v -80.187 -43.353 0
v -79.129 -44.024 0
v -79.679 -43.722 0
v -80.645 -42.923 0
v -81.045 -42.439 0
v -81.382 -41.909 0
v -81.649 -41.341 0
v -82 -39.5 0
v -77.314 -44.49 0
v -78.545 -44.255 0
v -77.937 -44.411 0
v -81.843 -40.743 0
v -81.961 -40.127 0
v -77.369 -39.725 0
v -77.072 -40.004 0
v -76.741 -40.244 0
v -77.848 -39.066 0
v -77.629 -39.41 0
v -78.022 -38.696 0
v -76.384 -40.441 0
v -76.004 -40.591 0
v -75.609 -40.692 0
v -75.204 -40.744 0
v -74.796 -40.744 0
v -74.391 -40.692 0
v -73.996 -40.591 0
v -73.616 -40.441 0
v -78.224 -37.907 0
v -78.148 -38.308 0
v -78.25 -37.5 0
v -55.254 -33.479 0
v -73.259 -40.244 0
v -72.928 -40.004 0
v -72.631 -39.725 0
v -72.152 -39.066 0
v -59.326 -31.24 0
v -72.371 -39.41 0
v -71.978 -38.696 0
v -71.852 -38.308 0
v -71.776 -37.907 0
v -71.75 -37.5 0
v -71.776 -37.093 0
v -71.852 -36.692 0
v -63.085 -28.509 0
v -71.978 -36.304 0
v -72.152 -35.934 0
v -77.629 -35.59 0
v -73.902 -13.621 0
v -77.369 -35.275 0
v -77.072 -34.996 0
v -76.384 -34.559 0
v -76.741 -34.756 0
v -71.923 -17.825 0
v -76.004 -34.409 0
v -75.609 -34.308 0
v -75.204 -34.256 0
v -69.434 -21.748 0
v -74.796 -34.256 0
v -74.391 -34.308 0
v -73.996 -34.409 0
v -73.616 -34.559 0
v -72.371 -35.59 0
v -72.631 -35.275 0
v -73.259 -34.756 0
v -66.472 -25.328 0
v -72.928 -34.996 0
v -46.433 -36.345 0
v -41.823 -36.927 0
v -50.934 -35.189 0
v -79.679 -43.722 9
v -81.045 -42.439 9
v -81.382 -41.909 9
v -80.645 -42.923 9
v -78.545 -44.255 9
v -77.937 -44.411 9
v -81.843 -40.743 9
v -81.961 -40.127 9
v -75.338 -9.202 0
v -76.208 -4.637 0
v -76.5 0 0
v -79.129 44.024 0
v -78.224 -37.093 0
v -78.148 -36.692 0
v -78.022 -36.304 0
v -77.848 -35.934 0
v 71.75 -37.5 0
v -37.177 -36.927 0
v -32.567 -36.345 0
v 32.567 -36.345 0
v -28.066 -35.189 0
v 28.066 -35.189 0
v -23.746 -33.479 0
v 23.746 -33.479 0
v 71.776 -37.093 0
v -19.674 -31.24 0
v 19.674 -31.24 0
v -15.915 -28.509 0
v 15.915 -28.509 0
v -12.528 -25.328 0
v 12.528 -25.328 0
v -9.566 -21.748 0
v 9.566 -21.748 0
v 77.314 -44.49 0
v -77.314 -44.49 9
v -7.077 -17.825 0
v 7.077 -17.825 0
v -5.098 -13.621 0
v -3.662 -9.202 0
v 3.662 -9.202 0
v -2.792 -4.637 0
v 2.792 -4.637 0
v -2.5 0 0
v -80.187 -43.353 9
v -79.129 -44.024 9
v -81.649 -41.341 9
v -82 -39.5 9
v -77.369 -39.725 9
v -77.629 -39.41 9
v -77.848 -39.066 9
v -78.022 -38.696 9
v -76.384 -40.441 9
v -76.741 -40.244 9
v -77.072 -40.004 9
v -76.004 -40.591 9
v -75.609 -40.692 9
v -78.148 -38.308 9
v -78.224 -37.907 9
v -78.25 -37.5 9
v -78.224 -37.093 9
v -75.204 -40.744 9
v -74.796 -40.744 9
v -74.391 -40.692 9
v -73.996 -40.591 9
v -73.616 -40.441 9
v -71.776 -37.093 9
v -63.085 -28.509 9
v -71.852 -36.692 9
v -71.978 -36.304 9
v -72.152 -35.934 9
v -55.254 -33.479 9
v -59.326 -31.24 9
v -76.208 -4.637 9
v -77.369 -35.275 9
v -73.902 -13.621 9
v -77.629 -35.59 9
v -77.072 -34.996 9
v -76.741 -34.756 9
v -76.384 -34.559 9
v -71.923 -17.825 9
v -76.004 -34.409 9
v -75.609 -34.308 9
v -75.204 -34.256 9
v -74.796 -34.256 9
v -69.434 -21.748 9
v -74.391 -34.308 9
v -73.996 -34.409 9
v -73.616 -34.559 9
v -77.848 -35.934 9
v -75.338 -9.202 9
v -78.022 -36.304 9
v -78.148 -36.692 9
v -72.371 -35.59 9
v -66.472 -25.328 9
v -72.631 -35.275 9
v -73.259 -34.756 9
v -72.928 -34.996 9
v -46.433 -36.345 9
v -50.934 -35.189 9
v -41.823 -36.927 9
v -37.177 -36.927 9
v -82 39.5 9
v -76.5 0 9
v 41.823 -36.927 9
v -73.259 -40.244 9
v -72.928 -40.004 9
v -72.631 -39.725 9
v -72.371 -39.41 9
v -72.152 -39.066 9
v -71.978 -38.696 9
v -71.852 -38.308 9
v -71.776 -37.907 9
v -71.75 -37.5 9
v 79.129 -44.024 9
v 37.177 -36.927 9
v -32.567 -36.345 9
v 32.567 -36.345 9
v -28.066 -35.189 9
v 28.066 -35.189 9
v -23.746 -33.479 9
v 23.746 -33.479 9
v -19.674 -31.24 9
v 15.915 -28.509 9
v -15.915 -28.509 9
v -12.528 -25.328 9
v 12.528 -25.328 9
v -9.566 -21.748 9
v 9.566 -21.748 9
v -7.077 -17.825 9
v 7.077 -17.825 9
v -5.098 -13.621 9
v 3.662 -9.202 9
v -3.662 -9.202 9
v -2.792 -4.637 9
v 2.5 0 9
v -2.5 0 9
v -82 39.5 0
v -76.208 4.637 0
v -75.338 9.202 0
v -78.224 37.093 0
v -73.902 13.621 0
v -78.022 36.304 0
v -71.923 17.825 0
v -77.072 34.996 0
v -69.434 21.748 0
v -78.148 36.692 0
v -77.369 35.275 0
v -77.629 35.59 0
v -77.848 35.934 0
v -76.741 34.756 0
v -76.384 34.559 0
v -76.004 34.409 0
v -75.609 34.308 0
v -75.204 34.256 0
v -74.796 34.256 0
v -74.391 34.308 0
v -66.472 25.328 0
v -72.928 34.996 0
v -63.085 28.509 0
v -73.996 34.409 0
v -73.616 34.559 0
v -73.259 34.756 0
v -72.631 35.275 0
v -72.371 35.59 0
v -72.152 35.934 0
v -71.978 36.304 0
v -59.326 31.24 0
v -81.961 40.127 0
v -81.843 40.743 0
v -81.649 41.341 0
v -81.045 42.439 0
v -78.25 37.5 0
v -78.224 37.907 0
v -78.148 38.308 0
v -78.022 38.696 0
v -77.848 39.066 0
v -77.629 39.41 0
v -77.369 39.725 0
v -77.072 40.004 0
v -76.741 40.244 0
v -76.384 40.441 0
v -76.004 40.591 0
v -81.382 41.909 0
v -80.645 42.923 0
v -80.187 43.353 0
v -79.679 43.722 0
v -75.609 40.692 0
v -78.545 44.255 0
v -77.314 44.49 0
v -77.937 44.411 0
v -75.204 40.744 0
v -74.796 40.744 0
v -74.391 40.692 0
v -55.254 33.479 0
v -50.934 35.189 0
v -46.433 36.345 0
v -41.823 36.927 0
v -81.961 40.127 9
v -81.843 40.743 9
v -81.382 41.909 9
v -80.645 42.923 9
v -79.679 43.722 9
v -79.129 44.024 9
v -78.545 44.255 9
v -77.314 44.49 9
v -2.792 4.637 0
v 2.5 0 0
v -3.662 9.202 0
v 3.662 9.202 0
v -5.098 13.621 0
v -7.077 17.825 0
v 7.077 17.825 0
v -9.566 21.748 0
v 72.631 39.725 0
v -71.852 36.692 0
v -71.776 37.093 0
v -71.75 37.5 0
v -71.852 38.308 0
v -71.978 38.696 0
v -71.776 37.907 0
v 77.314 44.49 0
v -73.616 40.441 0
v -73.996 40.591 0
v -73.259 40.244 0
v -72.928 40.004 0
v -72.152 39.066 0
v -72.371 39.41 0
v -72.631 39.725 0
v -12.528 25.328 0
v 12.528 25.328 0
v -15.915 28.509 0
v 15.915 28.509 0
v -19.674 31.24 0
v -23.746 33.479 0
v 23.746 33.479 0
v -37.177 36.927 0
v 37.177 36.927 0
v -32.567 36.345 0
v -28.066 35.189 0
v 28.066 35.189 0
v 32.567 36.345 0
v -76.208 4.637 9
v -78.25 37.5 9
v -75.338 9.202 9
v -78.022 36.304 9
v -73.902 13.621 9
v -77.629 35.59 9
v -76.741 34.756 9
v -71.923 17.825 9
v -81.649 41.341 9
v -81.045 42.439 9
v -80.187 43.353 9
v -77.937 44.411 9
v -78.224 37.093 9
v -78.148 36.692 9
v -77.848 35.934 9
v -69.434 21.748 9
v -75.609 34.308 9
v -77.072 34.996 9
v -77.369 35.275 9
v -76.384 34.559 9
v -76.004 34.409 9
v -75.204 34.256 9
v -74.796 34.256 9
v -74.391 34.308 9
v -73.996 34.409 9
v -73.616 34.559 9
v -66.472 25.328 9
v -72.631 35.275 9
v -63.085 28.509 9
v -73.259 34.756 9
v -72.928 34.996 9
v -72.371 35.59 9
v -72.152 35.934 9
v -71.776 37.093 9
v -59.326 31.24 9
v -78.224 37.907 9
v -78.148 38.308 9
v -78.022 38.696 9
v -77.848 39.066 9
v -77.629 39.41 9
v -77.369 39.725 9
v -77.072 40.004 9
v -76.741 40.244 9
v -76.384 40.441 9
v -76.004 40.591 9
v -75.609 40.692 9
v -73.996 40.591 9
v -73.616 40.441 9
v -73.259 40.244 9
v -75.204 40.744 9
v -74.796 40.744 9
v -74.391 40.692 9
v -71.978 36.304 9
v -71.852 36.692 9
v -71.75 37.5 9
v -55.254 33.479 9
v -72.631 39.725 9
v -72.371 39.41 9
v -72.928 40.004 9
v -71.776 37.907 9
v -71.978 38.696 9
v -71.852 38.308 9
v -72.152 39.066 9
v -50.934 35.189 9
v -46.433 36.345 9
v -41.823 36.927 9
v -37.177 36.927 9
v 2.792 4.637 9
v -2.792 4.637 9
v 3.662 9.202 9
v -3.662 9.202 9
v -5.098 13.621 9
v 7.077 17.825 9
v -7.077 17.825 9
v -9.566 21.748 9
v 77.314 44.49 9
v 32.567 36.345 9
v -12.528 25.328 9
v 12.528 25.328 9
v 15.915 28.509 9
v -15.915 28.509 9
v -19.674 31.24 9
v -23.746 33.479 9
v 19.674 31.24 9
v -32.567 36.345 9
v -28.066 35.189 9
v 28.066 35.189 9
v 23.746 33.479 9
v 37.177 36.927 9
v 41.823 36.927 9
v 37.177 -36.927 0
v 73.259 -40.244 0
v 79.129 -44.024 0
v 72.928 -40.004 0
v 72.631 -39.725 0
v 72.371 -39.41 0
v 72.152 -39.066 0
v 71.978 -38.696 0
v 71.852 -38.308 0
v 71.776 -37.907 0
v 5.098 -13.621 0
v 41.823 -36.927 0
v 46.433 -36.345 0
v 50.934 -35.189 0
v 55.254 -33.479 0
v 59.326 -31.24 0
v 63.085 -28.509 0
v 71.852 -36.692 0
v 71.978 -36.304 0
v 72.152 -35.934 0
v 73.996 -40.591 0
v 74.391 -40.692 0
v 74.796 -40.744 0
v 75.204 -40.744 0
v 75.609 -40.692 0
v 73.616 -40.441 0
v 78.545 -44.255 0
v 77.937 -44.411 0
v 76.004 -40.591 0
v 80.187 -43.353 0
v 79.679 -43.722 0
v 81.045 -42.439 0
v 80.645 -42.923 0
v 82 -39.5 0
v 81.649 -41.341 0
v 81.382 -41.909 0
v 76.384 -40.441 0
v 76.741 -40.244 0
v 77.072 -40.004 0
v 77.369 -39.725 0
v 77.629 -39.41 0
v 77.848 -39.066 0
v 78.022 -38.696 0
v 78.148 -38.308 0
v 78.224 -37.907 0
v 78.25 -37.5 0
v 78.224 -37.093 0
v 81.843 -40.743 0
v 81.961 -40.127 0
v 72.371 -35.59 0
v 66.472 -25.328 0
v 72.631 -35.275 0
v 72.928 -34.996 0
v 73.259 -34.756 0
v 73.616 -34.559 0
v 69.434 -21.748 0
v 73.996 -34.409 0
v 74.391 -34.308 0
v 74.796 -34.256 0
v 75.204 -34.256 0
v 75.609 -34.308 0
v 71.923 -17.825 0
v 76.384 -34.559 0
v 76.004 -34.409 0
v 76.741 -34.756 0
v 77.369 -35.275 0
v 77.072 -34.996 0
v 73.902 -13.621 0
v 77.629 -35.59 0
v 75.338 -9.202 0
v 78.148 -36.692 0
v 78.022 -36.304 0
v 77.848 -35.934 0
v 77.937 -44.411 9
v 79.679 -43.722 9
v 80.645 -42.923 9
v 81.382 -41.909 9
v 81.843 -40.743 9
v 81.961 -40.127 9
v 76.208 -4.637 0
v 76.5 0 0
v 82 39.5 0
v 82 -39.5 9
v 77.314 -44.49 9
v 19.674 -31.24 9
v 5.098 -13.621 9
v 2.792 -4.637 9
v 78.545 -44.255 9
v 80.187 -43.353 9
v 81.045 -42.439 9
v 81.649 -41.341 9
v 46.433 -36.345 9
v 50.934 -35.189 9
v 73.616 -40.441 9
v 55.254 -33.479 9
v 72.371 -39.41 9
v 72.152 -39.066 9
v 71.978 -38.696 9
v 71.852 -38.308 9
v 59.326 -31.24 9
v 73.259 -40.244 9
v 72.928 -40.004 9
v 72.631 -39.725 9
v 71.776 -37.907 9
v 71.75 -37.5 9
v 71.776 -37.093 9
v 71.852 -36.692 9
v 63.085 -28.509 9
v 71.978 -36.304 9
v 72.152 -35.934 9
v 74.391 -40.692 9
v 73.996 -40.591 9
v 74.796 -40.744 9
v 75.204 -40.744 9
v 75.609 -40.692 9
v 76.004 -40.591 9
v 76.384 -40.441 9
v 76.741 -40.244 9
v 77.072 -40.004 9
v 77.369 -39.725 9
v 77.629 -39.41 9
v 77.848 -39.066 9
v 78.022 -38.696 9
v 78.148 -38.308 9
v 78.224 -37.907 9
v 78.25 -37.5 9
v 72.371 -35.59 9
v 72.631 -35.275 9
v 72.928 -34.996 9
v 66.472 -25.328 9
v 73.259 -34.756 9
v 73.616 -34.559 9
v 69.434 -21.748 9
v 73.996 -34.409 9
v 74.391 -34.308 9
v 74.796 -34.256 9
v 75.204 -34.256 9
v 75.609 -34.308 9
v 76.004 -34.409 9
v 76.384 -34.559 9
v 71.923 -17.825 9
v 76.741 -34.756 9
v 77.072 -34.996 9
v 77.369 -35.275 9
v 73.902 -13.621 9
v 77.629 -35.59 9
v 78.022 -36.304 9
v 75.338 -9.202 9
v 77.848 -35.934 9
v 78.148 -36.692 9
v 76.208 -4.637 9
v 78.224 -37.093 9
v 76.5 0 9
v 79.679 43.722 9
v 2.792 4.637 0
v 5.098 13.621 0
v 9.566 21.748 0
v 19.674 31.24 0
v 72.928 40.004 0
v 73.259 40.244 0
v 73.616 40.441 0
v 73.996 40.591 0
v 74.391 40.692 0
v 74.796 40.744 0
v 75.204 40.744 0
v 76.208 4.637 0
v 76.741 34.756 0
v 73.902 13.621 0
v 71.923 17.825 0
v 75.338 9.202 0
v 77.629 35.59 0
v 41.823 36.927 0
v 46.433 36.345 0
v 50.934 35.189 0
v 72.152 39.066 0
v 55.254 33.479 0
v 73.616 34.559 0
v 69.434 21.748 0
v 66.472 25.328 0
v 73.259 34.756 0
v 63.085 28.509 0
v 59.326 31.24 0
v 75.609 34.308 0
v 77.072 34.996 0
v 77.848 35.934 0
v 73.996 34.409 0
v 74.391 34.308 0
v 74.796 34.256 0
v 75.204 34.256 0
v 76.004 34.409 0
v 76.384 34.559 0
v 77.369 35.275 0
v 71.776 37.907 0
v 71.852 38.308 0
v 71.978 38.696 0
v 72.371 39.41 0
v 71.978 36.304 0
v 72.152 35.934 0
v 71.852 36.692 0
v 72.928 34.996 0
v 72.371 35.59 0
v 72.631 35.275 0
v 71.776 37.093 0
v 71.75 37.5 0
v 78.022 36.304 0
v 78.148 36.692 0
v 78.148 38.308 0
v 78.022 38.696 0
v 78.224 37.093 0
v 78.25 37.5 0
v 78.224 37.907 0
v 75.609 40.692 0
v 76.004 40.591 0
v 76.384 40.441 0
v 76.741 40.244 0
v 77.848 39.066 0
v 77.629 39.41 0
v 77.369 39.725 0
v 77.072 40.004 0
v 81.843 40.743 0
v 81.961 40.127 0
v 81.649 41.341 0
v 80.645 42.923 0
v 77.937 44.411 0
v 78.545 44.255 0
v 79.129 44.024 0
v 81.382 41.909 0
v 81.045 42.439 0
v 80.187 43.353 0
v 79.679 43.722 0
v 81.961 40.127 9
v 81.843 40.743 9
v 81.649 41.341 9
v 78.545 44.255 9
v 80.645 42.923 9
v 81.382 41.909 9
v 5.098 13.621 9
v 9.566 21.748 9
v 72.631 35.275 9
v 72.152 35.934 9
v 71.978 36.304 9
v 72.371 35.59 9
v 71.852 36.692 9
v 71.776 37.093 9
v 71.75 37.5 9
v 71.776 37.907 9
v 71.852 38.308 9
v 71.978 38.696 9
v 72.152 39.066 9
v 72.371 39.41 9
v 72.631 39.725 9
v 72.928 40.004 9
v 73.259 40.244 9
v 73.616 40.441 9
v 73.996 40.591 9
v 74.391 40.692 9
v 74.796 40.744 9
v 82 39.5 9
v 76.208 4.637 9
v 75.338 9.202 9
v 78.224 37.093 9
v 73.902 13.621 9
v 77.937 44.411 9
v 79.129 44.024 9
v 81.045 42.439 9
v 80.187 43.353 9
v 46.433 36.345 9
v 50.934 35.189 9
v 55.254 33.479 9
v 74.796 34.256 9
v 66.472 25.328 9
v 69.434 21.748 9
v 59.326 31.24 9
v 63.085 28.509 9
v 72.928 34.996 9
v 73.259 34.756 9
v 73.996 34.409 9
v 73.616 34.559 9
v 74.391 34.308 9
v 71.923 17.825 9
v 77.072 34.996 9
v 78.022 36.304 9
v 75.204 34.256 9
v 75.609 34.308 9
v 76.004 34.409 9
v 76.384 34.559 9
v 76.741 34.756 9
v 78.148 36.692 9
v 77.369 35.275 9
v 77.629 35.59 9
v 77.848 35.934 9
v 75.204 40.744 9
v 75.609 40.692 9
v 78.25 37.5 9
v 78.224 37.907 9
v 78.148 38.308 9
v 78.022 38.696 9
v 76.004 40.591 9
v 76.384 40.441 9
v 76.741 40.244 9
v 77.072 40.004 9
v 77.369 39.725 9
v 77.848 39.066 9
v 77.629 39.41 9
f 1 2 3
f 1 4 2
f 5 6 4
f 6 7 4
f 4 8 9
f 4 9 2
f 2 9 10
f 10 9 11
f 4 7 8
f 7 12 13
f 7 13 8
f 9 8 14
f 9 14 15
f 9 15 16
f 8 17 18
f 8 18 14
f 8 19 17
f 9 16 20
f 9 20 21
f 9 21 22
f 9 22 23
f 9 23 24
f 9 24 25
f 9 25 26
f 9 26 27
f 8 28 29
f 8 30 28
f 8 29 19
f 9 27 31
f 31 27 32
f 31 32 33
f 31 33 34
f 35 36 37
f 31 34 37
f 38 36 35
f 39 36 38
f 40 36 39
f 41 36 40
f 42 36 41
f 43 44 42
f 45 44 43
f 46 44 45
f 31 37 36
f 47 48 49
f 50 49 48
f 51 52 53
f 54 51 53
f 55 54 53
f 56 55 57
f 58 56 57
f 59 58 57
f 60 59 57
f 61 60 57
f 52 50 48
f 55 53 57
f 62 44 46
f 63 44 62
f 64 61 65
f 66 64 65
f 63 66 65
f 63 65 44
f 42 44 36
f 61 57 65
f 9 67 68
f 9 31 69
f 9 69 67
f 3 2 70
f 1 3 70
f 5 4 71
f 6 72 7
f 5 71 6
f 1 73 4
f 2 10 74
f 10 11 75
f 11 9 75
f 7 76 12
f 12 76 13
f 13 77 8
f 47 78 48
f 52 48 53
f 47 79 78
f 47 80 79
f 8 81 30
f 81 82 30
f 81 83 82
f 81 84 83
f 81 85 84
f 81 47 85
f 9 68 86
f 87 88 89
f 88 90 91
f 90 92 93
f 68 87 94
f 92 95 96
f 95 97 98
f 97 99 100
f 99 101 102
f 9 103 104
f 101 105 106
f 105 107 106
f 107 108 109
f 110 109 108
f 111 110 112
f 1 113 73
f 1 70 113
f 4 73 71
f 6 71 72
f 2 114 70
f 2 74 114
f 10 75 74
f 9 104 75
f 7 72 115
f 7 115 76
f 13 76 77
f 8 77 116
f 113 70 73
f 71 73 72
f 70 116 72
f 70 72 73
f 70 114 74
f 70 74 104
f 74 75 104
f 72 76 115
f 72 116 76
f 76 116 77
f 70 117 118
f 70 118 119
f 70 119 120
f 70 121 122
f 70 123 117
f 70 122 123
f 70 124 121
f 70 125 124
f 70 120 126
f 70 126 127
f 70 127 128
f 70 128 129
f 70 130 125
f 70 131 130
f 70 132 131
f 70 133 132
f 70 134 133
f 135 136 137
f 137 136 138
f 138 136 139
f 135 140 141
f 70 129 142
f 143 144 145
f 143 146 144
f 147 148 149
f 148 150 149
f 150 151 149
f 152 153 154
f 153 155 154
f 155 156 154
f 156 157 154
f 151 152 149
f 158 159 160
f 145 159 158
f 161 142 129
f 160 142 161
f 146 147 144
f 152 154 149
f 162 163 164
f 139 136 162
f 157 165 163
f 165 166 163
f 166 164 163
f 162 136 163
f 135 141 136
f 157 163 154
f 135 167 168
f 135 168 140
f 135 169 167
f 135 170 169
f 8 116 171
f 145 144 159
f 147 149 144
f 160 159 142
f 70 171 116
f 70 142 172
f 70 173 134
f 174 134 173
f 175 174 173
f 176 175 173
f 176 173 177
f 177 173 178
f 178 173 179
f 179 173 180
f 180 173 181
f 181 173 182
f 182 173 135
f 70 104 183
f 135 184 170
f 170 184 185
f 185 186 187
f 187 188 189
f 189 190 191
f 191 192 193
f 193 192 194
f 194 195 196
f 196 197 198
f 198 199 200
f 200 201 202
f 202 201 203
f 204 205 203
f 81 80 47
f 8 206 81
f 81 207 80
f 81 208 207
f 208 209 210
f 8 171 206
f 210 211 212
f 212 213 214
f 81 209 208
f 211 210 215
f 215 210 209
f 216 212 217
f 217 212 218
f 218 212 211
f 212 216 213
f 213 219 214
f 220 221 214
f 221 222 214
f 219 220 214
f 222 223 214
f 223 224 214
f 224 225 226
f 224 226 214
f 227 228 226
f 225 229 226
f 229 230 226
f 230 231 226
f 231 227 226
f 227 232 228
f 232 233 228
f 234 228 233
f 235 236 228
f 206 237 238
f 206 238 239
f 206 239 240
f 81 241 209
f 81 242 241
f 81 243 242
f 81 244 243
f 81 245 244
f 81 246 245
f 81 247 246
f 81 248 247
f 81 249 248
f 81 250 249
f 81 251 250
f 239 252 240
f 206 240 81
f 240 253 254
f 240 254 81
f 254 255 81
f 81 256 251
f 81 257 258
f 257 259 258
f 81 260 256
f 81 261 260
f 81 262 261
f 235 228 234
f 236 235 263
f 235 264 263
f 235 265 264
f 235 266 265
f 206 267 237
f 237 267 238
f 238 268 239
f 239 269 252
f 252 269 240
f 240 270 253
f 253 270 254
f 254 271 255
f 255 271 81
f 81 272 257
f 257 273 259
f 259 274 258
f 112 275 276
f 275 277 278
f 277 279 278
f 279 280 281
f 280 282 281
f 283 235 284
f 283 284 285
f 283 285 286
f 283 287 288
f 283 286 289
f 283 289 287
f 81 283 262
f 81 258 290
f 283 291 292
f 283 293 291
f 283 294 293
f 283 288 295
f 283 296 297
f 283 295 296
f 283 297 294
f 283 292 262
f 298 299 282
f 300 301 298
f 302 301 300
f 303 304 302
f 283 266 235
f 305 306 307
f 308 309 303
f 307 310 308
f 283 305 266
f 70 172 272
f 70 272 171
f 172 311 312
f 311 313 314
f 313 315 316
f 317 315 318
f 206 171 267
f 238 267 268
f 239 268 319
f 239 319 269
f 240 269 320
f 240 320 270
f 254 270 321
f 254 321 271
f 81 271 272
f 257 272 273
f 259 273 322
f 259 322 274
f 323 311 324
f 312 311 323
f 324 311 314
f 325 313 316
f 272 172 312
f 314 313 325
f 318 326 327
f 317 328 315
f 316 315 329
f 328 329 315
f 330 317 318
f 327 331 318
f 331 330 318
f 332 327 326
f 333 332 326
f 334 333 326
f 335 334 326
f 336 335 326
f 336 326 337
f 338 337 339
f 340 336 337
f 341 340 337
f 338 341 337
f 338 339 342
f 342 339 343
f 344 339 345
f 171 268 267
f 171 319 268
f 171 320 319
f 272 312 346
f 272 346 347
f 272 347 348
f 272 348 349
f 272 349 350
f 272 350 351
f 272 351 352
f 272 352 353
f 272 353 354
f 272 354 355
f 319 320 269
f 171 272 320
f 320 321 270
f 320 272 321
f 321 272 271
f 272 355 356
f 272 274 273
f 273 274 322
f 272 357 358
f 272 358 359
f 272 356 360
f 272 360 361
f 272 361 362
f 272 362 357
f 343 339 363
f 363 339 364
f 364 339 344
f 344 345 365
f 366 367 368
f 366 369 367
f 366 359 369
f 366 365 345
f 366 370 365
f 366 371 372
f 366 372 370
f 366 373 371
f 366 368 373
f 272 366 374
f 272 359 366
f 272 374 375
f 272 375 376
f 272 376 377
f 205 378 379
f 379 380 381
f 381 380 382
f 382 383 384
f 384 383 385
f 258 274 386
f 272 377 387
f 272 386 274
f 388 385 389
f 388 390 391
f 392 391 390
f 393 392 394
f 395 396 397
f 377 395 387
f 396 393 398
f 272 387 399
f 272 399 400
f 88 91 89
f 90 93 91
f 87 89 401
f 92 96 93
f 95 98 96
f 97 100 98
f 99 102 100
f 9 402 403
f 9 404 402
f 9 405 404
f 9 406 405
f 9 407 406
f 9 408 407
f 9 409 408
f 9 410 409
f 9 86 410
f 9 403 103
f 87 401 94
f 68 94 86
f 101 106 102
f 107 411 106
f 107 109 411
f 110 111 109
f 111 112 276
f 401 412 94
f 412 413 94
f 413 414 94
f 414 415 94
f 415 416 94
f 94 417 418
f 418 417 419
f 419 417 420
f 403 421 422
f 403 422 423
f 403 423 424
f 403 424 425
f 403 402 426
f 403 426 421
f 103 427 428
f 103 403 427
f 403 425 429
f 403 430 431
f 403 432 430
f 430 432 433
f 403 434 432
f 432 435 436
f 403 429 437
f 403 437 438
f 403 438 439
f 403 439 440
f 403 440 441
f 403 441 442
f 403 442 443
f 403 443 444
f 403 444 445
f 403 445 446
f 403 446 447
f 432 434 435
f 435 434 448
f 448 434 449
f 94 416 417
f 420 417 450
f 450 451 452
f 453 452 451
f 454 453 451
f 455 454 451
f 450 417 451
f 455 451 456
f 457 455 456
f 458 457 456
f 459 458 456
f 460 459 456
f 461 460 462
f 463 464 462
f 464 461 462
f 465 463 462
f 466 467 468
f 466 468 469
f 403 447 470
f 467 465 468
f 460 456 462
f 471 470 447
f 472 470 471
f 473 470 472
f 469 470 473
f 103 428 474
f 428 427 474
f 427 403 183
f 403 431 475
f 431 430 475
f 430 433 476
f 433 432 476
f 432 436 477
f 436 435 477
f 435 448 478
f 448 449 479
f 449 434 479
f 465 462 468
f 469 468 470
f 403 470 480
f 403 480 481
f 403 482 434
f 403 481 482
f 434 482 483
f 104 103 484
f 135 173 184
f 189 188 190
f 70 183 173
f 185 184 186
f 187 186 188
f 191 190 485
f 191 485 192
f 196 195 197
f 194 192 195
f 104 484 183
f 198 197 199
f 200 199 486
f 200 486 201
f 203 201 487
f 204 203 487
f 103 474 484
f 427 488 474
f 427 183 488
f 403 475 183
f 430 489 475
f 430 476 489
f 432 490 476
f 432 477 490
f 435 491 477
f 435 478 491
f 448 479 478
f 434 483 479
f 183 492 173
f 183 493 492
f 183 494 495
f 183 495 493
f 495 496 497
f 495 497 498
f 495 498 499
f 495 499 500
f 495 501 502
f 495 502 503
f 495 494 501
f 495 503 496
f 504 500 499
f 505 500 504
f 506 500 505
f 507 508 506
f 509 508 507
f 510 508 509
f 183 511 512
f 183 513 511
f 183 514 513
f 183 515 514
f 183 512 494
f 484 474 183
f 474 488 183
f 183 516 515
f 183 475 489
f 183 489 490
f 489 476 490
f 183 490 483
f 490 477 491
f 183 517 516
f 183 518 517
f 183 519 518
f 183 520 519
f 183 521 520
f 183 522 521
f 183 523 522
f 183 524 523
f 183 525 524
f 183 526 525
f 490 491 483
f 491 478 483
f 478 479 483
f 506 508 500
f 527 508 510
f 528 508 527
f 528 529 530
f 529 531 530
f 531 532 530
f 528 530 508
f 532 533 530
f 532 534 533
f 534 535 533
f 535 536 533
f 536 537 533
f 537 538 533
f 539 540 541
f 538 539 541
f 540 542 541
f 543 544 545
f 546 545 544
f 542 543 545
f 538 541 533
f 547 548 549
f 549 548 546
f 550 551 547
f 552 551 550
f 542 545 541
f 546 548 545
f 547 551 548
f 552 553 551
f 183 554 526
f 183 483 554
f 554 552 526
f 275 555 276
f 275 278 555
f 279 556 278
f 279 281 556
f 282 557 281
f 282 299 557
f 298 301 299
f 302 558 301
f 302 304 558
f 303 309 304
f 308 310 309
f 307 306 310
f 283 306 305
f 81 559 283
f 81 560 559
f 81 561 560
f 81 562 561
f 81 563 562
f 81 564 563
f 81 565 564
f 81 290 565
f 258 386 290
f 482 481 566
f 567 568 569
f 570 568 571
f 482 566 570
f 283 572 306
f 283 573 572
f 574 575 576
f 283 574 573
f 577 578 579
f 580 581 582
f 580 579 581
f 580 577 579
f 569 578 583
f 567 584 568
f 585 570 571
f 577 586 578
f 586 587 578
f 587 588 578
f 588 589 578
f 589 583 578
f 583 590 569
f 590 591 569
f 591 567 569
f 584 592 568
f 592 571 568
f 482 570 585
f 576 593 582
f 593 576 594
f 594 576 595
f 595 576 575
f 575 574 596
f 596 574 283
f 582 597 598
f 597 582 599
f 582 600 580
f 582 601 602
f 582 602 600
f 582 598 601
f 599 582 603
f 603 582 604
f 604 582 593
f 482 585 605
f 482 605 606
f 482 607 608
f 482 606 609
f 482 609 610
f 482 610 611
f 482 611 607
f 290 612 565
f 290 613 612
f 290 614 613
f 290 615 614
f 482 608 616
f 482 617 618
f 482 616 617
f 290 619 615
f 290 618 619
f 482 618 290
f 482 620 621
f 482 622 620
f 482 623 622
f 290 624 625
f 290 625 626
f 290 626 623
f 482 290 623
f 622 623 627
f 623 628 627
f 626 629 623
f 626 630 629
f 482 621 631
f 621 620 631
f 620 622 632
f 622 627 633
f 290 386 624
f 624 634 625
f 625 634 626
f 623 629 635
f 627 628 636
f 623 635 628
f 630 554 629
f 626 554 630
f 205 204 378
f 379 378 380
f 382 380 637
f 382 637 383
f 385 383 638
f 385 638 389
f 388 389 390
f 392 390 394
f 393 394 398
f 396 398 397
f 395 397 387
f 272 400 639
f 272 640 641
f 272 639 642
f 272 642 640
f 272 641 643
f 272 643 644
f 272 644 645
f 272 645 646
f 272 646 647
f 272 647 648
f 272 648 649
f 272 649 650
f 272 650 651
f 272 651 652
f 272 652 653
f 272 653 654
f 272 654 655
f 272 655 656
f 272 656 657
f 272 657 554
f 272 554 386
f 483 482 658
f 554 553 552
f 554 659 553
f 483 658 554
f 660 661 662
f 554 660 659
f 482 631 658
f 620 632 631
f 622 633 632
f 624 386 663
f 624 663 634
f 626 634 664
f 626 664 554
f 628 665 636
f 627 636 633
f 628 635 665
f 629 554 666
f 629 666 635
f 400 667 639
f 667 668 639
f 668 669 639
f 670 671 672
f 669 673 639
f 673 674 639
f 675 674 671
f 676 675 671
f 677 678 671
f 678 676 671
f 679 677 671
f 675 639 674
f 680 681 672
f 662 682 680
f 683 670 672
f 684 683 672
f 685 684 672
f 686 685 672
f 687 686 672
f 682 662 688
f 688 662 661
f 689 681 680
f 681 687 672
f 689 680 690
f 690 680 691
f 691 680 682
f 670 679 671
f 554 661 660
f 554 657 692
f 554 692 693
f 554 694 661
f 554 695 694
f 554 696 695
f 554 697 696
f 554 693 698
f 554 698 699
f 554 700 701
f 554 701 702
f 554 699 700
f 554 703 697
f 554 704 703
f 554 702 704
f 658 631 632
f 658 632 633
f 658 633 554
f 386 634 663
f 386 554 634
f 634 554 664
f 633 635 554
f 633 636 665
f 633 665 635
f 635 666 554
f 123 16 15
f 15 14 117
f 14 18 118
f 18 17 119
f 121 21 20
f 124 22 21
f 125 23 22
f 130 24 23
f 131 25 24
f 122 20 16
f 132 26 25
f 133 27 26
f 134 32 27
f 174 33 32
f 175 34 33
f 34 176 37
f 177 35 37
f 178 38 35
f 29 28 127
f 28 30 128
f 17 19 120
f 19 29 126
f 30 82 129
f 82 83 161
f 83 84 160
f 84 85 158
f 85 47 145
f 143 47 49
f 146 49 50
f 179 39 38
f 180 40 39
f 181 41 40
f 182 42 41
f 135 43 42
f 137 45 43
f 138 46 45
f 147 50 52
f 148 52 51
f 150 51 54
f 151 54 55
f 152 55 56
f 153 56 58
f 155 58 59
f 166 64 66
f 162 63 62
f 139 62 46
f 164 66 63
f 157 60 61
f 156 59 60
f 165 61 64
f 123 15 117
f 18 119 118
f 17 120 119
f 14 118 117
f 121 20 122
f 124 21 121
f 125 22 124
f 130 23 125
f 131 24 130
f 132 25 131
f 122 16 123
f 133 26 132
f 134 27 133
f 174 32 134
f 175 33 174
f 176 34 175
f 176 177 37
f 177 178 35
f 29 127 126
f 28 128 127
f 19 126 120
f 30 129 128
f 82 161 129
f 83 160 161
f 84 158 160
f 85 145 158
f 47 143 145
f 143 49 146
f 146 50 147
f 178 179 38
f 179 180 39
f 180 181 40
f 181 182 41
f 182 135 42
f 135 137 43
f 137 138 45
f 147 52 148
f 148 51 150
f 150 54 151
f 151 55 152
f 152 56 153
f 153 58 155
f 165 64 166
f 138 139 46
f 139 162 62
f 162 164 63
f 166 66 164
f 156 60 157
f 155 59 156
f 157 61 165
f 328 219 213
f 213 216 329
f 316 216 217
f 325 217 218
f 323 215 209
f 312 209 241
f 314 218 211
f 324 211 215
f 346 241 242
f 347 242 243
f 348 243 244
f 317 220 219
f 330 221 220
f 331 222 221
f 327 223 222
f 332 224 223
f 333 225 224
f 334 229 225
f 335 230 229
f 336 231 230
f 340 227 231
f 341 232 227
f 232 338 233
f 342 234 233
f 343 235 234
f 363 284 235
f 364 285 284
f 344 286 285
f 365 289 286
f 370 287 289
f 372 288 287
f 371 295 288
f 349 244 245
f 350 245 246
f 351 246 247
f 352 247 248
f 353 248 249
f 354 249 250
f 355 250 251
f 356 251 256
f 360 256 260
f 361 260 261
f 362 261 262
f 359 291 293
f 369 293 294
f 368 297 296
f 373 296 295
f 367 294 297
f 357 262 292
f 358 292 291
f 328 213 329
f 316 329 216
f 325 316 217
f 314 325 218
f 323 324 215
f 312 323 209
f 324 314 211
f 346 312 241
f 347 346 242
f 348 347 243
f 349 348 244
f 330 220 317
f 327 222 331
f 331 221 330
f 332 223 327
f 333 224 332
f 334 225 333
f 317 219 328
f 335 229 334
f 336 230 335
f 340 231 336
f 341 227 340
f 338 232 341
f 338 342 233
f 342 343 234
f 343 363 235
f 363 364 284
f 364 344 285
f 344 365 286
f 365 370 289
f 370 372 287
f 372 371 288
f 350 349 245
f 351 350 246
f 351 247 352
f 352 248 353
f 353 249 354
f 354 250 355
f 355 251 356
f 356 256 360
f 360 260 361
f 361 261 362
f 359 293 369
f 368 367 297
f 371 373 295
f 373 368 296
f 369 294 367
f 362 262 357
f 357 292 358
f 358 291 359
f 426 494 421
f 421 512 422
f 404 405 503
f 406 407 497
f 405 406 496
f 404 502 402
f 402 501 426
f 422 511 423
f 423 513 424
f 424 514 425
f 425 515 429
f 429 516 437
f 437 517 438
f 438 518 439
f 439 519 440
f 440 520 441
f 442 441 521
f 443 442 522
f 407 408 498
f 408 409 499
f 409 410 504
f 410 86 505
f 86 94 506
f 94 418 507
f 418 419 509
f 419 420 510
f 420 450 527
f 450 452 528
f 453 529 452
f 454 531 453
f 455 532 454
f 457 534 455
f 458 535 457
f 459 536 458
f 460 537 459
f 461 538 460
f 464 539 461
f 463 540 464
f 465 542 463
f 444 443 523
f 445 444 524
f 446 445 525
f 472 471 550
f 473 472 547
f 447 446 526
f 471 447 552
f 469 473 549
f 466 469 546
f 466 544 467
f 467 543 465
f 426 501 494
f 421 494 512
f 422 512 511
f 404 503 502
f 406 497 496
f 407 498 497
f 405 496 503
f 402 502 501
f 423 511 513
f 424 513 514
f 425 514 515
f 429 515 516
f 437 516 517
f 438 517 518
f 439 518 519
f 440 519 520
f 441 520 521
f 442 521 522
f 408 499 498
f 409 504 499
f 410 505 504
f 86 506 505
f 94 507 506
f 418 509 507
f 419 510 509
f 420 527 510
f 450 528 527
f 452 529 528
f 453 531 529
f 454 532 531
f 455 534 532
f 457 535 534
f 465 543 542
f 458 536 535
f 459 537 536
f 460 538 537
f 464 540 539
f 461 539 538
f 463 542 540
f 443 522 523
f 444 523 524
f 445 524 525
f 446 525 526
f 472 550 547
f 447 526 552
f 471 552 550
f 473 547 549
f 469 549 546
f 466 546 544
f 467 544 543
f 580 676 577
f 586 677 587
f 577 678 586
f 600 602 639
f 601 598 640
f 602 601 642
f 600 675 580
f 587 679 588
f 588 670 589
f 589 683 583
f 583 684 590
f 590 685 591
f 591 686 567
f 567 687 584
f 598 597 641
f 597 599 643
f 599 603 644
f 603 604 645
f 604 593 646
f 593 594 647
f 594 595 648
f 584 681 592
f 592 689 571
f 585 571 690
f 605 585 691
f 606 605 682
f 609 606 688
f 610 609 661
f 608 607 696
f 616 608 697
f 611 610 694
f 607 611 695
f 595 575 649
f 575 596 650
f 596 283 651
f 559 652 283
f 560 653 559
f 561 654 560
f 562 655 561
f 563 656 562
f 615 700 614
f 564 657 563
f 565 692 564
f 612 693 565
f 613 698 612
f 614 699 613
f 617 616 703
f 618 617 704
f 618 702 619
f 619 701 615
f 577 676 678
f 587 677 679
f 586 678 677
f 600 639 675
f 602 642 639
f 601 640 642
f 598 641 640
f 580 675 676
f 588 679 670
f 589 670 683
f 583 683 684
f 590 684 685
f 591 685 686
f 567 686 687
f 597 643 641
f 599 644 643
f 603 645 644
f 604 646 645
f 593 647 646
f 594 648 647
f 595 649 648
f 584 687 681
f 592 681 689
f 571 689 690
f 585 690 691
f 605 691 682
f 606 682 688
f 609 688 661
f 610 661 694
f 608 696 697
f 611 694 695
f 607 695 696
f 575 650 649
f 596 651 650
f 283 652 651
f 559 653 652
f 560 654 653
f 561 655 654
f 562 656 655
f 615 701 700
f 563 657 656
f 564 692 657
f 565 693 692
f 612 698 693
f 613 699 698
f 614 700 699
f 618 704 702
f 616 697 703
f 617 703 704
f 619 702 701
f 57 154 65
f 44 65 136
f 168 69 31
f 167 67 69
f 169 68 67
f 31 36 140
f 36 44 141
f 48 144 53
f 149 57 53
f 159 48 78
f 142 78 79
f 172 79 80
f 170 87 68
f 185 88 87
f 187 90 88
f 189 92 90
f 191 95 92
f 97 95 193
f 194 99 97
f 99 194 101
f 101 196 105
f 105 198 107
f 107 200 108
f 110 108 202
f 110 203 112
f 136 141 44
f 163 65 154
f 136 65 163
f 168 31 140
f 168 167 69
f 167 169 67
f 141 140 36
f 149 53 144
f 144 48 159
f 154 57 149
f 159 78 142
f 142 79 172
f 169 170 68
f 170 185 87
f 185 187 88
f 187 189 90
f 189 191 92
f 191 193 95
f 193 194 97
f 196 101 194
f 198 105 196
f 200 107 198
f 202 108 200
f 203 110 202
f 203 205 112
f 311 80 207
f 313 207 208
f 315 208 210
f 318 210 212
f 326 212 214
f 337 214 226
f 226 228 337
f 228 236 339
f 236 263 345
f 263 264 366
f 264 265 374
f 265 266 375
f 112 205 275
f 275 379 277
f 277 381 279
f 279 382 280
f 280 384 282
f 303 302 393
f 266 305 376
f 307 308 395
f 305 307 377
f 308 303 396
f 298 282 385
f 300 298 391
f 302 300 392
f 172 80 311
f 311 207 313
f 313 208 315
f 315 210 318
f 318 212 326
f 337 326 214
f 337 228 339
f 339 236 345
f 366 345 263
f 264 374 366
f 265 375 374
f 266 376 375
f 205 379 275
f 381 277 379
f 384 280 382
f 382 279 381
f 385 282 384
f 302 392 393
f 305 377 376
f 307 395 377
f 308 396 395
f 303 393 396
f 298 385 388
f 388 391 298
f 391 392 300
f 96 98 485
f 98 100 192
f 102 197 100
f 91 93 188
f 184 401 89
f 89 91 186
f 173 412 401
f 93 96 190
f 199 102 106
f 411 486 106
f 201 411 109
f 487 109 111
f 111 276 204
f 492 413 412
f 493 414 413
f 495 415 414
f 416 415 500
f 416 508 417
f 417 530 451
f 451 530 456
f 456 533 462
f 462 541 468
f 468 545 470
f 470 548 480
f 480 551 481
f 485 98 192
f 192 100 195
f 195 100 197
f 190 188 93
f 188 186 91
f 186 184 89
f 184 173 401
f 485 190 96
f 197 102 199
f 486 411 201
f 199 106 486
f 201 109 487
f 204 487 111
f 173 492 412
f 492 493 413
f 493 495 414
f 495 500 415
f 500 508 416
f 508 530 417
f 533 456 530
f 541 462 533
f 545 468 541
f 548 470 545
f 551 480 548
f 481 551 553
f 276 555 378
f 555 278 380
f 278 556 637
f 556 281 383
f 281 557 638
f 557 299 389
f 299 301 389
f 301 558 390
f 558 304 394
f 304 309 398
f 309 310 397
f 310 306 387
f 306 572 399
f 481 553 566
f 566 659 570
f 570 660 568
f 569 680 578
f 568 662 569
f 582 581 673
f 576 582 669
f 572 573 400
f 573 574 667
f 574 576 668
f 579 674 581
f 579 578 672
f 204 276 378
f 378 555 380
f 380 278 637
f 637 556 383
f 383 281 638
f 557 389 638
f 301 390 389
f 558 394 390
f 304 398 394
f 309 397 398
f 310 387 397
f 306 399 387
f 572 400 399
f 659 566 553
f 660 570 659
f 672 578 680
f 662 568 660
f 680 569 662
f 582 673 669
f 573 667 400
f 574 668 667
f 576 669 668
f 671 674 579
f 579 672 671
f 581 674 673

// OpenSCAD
$fn = 50;

difference() {
	union() {
		hull() {
			translate(v = [-77.0, 39.5, 0]) {
				cylinder(h = 9, r = 5);
			}
			translate(v = [77.0, 39.5, 0]) {
				cylinder(h = 9, r = 5);
			}
			translate(v = [-77.0, -39.5, 0]) {
				cylinder(h = 9, r = 5);
			}
			translate(v = [77.0, -39.5, 0]) {
				cylinder(h = 9, r = 5);
			}
		}
	}
	union() {
		translate(v = [-75.0, -37.5, -100.0]) {
			cylinder(h = 200, r = 3.25);
		}
		translate(v = [-75.0, 37.5, -100.0]) {
			cylinder(h = 200, r = 3.25);
		}
		translate(v = [75.0, -37.5, -100.0]) {
			cylinder(h = 200, r = 3.25);
		}
		translate(v = [75.0, 37.5, -100.0]) {
			cylinder(h = 200, r = 3.25);
		}
		translate(v = [-75.0, -37.5, -100.0]) {
			cylinder(h = 200, r = 1.8);
		}
		translate(v = [-75.0, 37.5, -100.0]) {
			cylinder(h = 200, r = 1.8);
		}
		translate(v = [75.0, -37.5, -100.0]) {
			cylinder(h = 200, r = 1.8);
		}
		translate(v = [75.0, 37.5, -100.0]) {
			cylinder(h = 200, r = 1.8);
		}
		translate(v = [-39.5, 0, 0.0]) {
			cylinder(h = 9, r = 37.0);
		}
		translate(v = [39.5, 0, 0.0]) {
			cylinder(h = 9, r = 37.0);
		}
	}
}
